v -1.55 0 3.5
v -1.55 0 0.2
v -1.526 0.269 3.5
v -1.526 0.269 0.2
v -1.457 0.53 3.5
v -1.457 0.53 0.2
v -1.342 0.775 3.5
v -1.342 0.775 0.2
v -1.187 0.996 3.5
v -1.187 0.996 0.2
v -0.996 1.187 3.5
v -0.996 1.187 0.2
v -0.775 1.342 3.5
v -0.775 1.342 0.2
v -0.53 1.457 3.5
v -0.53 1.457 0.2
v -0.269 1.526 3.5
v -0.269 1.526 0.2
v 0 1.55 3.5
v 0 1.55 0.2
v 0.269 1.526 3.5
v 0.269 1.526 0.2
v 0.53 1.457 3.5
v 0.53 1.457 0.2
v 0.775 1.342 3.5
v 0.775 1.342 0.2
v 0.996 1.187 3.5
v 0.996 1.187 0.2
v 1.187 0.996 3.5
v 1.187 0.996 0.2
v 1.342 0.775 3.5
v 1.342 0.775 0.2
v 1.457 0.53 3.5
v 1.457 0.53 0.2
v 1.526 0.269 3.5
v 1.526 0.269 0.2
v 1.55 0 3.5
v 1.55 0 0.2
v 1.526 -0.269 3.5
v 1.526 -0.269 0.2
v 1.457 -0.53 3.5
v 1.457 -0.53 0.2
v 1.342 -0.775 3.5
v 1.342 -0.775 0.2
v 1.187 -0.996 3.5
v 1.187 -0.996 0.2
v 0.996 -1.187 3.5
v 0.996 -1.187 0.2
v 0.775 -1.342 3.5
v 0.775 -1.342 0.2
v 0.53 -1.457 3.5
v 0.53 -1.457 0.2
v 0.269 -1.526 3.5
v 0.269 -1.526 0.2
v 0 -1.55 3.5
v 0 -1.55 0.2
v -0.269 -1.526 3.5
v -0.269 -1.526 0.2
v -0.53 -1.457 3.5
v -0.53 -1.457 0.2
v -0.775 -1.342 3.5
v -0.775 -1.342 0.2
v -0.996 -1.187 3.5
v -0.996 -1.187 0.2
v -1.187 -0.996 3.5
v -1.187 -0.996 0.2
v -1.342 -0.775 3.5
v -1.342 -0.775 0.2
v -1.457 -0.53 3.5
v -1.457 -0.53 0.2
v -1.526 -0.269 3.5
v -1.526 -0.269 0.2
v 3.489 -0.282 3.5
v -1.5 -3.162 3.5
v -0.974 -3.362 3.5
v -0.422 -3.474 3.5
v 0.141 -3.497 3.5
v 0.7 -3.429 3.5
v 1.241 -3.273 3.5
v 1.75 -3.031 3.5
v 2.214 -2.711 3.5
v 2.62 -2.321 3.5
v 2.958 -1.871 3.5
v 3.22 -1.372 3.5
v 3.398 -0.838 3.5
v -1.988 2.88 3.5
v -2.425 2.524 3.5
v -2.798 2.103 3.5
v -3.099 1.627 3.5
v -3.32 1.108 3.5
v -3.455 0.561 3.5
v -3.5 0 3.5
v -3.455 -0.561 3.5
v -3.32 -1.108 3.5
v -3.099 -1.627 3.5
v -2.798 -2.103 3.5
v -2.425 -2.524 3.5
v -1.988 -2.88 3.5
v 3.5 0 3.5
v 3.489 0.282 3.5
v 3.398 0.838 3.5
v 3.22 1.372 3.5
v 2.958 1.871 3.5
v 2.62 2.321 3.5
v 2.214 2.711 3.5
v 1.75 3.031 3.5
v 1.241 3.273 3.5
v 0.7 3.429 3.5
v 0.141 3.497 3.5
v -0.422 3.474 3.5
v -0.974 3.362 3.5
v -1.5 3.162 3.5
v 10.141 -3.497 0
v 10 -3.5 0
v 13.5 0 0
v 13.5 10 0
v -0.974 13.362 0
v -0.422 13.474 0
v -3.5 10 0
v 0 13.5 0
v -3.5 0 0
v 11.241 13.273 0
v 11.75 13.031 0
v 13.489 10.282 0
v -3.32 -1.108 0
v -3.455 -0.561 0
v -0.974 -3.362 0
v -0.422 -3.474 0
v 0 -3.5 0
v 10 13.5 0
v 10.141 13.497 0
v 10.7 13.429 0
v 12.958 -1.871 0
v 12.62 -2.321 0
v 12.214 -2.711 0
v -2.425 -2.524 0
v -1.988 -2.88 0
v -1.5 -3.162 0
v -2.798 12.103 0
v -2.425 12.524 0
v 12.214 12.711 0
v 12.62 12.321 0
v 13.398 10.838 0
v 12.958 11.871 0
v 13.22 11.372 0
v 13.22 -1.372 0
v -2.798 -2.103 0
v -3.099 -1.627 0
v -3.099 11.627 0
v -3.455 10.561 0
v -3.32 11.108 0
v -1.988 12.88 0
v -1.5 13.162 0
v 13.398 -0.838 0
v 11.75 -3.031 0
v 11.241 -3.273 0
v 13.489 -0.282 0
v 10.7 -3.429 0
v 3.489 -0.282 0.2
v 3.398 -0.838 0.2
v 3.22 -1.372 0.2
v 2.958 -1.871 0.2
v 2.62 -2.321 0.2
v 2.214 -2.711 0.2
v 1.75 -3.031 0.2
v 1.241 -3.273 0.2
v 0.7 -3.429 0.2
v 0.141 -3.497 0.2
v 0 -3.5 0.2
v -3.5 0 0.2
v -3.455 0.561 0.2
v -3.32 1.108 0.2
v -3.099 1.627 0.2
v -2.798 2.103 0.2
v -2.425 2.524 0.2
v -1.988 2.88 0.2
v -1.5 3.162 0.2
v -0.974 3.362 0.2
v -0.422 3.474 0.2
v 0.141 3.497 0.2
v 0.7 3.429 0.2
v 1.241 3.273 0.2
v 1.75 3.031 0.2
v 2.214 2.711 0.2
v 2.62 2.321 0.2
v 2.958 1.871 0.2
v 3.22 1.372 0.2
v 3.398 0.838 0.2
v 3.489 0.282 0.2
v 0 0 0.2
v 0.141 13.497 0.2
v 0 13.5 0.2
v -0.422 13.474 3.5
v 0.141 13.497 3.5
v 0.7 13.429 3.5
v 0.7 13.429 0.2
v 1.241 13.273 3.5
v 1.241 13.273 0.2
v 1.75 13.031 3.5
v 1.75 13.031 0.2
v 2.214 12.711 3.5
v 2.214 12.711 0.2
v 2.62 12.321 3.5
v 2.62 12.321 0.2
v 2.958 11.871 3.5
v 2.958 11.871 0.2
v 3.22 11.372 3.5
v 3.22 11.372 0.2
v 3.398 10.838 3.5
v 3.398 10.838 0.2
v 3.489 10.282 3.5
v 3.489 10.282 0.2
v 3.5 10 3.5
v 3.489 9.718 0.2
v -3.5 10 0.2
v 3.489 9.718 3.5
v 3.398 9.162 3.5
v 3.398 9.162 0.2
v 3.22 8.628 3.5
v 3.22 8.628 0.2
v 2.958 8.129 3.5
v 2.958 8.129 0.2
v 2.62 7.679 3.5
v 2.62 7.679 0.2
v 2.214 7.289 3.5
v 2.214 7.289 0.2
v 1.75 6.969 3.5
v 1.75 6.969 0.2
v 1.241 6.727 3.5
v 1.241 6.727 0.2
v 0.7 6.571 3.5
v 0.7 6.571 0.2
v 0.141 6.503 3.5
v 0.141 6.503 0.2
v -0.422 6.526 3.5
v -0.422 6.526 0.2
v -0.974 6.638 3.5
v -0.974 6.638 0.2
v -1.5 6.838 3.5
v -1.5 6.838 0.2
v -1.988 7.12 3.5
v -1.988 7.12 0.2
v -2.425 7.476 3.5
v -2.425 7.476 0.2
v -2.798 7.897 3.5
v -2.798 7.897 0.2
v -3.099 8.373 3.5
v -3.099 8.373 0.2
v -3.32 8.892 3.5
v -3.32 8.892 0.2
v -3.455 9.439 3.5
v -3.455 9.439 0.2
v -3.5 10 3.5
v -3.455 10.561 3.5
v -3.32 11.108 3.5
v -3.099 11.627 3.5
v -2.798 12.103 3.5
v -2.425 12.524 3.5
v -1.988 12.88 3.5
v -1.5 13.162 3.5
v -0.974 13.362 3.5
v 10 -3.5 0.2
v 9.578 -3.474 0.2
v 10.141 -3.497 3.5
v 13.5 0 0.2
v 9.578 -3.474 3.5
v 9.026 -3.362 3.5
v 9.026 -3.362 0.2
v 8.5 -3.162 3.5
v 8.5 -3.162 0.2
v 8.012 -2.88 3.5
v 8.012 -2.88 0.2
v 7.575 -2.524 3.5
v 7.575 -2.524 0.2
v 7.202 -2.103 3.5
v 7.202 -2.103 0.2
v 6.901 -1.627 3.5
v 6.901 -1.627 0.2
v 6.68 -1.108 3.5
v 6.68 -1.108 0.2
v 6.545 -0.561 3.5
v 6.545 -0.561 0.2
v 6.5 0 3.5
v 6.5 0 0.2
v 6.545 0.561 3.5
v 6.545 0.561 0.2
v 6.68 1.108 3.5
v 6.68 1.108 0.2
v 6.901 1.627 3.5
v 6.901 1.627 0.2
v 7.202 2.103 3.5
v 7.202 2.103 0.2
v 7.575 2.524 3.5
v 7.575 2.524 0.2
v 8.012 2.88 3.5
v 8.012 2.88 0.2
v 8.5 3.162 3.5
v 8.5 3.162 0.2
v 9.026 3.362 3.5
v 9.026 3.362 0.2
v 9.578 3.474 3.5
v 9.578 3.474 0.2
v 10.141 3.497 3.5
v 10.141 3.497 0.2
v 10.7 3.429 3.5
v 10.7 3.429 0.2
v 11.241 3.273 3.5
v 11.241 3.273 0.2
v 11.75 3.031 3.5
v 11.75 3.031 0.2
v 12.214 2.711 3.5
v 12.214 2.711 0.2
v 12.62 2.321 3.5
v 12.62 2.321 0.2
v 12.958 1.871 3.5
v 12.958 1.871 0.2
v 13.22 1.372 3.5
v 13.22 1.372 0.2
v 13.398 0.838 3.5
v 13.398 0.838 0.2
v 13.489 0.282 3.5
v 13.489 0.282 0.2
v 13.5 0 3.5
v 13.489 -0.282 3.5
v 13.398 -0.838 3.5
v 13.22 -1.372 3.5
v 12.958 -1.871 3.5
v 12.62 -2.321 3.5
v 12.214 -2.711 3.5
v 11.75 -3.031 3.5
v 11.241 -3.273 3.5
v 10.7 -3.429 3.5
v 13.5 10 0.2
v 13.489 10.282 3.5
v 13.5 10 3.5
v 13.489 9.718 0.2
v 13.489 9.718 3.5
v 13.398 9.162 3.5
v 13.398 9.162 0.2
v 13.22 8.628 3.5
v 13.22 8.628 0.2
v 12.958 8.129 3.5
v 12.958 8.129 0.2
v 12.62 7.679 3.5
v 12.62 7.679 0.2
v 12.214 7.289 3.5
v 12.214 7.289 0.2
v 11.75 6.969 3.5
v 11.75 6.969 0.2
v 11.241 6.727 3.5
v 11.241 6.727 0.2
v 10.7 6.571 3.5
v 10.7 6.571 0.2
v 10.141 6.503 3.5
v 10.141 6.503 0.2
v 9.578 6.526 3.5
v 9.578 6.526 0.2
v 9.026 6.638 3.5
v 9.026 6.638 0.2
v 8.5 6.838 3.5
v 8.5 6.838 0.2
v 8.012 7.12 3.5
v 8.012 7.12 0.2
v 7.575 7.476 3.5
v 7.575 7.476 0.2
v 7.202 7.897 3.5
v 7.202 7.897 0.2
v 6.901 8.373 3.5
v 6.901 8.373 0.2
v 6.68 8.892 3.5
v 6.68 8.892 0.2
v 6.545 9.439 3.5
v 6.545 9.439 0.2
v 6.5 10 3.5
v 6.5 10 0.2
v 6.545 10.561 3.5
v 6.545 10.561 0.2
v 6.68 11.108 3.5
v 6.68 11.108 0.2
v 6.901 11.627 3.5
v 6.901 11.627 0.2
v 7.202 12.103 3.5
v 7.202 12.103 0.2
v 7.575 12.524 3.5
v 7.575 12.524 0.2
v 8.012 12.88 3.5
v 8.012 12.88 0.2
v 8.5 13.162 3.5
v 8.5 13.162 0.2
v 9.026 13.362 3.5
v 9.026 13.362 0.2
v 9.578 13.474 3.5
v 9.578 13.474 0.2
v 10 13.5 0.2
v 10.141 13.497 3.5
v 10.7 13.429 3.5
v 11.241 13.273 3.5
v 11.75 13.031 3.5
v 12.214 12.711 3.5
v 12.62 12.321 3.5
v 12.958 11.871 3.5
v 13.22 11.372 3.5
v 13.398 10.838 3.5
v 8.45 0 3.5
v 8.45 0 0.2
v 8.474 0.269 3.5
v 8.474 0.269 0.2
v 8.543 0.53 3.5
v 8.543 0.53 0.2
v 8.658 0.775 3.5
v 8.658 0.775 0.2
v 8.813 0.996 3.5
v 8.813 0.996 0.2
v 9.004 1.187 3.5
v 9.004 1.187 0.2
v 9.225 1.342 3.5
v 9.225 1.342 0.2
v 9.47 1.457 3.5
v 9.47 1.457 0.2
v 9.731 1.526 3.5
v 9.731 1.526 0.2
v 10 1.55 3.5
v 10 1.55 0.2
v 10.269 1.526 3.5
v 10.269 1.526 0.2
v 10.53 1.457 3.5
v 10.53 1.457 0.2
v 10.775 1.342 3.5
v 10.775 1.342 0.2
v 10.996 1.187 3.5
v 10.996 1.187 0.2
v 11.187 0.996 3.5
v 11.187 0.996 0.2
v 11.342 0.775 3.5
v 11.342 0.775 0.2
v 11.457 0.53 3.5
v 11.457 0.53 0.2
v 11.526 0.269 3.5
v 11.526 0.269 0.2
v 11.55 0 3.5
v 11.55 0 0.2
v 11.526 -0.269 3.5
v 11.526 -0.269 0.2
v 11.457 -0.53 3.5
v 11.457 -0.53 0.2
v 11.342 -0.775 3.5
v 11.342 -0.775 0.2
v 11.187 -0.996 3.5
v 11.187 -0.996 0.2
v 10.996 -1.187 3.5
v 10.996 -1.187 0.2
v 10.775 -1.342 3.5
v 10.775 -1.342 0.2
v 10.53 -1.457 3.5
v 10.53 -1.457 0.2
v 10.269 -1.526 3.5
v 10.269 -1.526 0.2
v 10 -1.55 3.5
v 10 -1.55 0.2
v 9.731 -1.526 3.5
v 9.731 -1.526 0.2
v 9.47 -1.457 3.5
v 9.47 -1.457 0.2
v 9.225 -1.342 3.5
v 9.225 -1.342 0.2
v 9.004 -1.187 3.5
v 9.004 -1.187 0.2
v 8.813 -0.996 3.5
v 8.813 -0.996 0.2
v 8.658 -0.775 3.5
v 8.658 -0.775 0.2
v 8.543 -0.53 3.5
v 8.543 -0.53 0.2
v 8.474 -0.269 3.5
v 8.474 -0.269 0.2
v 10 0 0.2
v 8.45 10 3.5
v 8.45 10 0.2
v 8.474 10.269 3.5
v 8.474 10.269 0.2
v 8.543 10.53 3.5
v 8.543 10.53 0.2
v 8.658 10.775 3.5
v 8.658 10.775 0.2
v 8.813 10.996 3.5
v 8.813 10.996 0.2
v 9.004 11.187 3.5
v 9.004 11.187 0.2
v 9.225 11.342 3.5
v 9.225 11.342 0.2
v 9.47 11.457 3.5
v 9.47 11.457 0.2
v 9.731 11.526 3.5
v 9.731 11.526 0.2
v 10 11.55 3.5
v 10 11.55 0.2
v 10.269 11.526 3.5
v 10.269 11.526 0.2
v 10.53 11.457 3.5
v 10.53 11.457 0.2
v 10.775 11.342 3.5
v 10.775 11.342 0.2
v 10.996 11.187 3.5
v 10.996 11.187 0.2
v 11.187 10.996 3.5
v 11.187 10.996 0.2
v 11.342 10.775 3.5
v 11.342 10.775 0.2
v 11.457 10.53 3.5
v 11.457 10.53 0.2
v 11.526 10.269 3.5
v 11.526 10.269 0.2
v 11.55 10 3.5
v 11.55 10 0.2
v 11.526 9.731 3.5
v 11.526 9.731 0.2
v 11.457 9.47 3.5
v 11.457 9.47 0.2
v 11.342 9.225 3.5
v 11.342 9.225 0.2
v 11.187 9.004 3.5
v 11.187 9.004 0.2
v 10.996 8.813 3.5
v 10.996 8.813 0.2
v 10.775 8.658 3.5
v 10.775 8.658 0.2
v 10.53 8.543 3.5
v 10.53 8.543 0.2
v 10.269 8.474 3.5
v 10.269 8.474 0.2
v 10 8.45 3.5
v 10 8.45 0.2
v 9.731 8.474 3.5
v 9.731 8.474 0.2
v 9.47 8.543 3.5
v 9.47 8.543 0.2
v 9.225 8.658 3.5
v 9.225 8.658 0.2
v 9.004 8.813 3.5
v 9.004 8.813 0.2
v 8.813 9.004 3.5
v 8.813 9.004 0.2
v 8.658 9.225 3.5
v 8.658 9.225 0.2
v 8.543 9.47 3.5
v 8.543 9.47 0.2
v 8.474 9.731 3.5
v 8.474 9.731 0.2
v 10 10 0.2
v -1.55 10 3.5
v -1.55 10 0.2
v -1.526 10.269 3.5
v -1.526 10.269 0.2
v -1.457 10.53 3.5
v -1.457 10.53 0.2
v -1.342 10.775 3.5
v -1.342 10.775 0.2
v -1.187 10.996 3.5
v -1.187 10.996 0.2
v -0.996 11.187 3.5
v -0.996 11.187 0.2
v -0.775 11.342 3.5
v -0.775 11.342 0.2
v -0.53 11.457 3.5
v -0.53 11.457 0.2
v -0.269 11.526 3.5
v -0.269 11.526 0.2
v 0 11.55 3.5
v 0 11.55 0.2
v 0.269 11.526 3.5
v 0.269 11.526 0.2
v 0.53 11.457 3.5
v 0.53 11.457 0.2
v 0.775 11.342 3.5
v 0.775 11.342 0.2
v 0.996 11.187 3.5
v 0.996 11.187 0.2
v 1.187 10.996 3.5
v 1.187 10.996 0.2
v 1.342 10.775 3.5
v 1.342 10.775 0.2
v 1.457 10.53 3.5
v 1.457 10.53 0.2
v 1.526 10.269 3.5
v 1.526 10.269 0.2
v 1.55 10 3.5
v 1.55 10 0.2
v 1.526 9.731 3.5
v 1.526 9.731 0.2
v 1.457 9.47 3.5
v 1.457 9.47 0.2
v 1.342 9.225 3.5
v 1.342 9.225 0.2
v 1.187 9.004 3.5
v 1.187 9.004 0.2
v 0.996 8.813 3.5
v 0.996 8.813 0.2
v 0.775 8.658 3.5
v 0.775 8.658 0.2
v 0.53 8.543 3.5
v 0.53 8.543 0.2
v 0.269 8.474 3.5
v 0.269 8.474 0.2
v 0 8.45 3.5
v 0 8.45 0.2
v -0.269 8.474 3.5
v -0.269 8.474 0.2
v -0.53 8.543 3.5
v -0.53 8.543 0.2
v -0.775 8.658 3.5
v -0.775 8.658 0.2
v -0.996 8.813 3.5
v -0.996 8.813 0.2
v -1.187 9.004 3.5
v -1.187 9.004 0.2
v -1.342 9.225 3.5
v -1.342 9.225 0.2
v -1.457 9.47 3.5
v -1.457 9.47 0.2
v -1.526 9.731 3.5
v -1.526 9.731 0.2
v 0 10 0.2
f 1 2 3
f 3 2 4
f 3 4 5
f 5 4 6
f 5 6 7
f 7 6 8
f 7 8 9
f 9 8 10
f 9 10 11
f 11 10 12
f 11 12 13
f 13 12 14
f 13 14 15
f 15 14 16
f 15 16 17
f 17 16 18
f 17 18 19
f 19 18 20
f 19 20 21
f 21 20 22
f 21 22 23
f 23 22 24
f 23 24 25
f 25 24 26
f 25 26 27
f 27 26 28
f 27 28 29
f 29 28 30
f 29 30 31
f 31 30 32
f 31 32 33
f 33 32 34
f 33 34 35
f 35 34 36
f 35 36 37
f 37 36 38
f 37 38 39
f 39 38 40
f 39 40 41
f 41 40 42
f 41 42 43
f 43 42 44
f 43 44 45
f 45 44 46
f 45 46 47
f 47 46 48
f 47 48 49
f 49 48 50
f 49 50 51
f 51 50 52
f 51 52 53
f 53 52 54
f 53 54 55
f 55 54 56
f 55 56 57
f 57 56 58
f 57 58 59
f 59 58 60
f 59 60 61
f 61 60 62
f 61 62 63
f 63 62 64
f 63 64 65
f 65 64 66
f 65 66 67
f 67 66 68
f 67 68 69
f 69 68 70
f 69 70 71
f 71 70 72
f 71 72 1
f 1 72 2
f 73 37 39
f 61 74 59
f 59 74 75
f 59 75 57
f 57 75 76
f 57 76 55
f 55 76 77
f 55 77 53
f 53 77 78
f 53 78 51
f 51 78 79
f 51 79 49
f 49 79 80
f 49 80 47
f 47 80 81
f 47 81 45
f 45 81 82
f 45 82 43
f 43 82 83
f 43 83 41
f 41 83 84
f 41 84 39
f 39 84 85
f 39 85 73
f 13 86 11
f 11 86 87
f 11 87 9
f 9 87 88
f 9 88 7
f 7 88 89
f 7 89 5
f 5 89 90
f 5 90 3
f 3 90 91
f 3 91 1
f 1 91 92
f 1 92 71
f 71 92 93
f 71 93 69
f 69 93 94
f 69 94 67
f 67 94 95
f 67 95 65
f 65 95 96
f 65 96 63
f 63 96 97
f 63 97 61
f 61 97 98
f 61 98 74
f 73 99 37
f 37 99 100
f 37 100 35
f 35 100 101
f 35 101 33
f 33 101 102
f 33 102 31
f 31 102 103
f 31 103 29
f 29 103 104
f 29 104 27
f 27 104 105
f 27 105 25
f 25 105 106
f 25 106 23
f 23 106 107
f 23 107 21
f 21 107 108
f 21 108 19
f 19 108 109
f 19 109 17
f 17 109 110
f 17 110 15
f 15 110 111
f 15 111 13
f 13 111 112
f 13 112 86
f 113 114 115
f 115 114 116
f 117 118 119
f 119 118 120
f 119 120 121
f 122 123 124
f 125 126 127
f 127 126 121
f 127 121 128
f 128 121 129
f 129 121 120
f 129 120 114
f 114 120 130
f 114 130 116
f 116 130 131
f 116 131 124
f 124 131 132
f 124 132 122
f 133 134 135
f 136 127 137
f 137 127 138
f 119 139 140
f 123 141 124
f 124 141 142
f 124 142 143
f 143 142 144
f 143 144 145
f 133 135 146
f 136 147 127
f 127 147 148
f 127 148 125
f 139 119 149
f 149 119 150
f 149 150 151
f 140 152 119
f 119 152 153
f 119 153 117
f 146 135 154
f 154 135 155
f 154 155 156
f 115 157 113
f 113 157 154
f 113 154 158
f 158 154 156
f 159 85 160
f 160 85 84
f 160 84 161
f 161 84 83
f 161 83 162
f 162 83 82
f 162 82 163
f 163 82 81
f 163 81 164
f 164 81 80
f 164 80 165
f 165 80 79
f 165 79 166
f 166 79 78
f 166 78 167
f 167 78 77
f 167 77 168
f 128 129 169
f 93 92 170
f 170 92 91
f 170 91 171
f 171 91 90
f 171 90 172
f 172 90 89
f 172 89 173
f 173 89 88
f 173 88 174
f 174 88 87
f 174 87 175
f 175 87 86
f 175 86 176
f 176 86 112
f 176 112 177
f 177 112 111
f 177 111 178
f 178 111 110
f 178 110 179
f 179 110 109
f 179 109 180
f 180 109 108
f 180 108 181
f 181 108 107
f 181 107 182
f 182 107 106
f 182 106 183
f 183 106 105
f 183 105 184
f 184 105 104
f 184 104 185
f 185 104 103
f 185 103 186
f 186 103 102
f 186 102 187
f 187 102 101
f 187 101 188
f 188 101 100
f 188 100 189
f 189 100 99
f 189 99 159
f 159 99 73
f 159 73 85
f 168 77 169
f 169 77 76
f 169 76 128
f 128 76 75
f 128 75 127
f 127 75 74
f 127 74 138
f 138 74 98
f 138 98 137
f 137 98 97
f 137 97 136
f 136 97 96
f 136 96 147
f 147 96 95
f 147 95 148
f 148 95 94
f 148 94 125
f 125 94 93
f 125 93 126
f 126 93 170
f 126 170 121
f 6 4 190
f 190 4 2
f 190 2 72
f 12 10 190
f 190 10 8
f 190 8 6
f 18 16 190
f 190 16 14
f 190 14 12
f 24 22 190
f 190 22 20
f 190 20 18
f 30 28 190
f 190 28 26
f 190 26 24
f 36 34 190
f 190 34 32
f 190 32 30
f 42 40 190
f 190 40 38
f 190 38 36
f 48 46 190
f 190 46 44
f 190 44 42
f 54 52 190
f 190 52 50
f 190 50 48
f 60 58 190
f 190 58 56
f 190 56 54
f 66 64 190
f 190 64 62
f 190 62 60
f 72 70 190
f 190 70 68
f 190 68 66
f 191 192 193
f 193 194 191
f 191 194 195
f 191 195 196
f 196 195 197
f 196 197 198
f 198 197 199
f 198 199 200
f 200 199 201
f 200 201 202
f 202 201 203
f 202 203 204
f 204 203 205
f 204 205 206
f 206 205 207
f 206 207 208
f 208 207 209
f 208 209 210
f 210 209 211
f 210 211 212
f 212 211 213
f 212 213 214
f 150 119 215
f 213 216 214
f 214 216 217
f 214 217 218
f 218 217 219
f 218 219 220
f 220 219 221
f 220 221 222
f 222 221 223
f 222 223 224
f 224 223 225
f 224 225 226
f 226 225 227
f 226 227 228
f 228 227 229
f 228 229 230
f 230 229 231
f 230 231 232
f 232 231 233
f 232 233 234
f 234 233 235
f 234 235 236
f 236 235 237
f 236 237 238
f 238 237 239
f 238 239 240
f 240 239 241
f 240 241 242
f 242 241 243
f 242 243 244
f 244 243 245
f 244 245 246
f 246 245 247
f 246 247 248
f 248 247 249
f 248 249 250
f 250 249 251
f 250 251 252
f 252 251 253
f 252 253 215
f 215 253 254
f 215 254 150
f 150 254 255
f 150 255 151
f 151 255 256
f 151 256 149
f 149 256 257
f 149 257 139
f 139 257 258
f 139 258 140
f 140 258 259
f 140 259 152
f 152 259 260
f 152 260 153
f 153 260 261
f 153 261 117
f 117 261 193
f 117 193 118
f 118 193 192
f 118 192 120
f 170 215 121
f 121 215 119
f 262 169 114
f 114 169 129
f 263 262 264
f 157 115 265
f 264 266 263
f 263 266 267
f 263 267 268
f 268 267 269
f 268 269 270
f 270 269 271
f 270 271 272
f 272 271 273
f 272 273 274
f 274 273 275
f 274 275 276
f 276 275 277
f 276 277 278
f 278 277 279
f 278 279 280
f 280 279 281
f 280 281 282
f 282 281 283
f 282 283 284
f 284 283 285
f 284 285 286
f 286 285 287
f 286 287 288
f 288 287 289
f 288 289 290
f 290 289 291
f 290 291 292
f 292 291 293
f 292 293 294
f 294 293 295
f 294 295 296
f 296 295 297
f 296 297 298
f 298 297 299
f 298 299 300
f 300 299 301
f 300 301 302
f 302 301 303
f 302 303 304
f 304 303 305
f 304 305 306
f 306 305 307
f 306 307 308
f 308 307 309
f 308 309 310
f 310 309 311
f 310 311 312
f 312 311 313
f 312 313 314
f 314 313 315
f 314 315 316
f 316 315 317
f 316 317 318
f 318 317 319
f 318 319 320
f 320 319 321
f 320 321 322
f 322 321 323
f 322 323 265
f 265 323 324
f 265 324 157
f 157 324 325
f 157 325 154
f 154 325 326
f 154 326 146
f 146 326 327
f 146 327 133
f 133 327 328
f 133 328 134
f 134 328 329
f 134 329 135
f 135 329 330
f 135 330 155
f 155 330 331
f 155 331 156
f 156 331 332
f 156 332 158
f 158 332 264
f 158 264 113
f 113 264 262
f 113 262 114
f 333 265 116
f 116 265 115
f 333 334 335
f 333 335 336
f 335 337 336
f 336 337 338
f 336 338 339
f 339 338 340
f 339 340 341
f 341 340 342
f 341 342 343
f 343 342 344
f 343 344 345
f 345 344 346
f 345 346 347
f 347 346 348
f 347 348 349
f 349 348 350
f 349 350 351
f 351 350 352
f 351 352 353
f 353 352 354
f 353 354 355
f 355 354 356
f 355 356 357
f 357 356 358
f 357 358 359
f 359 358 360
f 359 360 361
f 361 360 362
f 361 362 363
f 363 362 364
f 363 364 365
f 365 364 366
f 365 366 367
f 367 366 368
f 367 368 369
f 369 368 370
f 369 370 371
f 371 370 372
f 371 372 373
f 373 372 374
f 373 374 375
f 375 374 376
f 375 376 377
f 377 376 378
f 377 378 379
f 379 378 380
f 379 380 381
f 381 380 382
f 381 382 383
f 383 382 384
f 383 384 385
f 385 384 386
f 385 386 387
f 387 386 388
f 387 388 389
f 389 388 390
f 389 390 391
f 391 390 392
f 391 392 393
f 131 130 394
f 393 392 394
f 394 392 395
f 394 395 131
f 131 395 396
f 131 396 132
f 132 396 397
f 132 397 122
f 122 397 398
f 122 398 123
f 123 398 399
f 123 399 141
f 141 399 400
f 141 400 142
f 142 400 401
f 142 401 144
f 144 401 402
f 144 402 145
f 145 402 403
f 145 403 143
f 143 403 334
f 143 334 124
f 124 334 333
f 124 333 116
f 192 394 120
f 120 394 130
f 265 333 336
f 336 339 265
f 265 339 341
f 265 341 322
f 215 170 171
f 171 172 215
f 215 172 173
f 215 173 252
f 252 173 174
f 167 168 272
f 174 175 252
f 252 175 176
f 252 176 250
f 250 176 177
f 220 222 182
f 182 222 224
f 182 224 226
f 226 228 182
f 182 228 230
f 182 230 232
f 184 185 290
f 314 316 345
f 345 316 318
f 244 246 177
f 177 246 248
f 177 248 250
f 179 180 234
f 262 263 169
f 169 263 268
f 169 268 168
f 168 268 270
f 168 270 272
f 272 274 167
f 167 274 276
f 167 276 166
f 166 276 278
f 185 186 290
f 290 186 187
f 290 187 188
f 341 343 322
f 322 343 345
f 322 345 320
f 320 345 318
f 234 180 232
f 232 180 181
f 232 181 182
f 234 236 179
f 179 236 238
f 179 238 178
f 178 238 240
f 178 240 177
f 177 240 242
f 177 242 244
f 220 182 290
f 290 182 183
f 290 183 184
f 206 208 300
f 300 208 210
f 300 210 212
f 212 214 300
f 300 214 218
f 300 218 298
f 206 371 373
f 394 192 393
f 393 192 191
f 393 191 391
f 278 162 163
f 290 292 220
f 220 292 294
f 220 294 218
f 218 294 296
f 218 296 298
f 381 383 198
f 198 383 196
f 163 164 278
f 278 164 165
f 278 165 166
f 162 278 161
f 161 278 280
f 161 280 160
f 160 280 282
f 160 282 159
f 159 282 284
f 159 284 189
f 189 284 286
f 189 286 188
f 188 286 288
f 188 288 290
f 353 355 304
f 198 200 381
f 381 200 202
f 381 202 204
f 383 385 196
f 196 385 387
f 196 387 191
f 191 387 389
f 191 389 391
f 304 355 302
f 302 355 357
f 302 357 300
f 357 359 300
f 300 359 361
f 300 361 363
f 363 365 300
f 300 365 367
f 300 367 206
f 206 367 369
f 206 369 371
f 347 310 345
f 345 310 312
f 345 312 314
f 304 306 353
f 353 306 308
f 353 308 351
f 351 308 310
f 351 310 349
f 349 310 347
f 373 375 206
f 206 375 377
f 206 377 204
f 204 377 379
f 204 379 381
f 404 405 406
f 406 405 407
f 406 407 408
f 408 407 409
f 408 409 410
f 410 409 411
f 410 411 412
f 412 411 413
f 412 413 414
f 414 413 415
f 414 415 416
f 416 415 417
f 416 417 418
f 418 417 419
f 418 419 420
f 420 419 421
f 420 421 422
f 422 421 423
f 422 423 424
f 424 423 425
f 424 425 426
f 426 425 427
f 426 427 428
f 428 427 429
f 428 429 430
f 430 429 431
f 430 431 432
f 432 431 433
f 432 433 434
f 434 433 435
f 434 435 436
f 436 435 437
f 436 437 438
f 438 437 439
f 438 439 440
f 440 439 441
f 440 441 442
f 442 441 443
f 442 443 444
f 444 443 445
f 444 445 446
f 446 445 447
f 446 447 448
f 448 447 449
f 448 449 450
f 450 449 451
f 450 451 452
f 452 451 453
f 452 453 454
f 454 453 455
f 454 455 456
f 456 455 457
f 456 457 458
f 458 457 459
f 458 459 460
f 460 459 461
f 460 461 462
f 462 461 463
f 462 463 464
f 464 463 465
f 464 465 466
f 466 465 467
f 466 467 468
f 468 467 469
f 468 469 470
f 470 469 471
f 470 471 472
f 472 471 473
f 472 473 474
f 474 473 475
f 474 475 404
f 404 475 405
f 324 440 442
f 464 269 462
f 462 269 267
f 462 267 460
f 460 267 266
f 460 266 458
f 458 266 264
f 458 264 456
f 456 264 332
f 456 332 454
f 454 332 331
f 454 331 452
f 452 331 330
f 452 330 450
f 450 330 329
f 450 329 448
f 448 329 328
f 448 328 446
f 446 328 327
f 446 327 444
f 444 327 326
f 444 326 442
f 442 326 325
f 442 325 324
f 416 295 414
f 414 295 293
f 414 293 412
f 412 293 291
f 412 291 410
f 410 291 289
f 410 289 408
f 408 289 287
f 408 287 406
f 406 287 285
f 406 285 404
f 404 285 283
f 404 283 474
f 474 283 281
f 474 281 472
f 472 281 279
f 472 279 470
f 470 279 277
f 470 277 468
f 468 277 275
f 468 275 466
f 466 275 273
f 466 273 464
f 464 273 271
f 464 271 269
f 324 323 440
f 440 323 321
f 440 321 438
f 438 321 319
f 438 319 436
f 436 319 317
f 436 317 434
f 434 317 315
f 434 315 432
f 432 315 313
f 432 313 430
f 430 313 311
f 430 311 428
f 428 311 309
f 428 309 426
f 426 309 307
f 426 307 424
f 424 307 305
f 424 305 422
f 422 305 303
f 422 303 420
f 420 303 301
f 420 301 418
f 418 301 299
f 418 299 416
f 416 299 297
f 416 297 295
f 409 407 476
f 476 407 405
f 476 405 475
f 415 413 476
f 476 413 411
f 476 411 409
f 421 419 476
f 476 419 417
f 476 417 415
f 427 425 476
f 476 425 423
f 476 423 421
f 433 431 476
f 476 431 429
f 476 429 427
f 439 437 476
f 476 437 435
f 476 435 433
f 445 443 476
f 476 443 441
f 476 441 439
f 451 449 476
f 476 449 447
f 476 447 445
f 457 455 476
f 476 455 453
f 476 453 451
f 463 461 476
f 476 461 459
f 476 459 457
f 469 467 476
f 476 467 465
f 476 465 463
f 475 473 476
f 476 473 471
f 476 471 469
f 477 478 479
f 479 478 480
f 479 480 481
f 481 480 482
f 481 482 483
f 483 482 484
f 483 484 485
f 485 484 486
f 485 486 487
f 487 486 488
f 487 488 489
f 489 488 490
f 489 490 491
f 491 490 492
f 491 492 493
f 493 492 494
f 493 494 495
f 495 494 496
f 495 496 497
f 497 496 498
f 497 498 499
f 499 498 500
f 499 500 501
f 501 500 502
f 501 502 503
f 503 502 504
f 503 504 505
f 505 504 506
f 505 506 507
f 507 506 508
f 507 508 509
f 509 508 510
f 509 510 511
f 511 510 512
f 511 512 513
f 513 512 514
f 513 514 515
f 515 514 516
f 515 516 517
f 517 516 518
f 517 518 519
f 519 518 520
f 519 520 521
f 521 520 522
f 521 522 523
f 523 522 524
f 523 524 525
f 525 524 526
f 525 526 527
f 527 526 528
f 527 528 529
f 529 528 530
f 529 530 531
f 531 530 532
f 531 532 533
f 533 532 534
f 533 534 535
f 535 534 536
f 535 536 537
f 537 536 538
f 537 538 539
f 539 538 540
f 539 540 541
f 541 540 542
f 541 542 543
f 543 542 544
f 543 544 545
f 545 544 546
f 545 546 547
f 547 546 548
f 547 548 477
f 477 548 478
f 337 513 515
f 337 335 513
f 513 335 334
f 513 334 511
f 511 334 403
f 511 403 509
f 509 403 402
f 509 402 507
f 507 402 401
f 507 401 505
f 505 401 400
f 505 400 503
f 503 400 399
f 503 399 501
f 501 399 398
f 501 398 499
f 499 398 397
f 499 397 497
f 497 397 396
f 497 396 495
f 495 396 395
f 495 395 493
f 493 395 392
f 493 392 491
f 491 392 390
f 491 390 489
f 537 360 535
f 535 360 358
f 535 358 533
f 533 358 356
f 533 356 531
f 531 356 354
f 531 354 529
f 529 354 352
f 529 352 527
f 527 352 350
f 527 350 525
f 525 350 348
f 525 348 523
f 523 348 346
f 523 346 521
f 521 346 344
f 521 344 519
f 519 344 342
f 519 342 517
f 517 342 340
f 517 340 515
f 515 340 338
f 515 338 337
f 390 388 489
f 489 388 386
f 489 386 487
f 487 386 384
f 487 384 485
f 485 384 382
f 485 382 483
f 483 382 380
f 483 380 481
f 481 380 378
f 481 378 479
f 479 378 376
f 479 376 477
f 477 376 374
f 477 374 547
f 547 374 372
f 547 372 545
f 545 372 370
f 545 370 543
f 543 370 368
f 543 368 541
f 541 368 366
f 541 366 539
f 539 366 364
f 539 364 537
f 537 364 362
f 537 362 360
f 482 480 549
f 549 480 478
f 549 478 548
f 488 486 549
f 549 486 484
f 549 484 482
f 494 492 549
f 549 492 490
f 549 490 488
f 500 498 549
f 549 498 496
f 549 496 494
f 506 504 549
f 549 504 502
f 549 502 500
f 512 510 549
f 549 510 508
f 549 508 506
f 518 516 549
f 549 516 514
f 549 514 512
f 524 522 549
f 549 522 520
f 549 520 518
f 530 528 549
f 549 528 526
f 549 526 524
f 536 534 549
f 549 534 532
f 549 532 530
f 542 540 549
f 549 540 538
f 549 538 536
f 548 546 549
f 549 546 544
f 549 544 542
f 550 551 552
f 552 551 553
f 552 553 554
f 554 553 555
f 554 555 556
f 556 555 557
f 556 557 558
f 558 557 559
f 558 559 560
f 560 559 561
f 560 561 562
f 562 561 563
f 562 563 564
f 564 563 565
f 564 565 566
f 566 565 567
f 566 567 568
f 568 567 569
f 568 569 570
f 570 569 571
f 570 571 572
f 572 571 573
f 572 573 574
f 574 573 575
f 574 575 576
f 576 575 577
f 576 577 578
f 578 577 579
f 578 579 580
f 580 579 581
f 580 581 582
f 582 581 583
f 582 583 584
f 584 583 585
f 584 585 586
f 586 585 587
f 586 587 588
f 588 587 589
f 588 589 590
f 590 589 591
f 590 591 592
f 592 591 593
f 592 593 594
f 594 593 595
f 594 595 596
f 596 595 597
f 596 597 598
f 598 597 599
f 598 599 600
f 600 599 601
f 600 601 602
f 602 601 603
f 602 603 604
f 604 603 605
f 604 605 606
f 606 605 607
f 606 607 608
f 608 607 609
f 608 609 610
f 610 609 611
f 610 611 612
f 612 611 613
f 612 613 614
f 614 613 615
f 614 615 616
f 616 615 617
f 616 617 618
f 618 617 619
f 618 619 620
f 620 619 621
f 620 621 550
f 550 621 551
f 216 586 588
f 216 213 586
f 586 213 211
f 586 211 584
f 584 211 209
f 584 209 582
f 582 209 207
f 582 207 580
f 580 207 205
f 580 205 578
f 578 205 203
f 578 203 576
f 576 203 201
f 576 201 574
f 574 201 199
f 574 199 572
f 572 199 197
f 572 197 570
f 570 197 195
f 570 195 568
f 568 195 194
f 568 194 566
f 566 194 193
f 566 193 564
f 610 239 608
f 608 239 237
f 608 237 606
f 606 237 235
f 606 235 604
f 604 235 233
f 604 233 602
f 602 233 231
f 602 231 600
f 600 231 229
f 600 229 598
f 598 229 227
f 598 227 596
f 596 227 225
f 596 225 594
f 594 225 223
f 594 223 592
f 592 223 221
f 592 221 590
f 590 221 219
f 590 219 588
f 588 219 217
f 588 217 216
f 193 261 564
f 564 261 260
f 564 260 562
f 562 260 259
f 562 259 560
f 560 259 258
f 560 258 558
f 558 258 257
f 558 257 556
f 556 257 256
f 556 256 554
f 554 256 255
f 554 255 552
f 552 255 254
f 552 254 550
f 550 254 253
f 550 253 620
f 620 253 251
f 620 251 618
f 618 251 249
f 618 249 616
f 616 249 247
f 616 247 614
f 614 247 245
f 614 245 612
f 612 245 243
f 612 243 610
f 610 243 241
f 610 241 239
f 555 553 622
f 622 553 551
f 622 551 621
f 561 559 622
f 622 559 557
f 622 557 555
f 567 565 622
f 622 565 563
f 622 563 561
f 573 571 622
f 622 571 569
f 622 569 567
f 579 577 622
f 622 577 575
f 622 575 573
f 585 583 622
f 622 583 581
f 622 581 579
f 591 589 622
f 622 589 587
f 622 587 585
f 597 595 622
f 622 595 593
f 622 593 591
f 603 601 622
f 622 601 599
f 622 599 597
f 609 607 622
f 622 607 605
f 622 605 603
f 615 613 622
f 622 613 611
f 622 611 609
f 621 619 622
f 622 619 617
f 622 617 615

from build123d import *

# Parameters (mm, degrees)
SKETCH1_R             = 3.5
SKETCH1_R_2           = 1.55
BOSS_EXTRUDE1_DEPTH   = 3.5
BOSS_EXTRUDE1_2_DEPTH = 3.5
BOSS_EXTRUDE1_3_DEPTH = 3.5
BOSS_EXTRUDE1_4_DEPTH = 3.5
BOSS_EXTRUDE2_DEPTH   = 0.2


with BuildPart() as part:
    # Sketch1 → Boss-Extrude1 (new body)
    with BuildSketch(Plane.XY):
        Circle(SKETCH1_R)
        Circle(SKETCH1_R_2, mode=Mode.SUBTRACT)
    extrude(amount=BOSS_EXTRUDE1_DEPTH)



with BuildPart() as body_2:
    # Sketch1 → Boss-Extrude1 2 (new body)
    with BuildSketch(Plane.XY):
        with Locations((10, 0)):
            Circle(SKETCH1_R)
        with Locations((10, 0)):
            Circle(SKETCH1_R_2, mode=Mode.SUBTRACT)
    extrude(amount=BOSS_EXTRUDE1_2_DEPTH)


with BuildPart() as body_3:
    # Sketch1 → Boss-Extrude1 3 (new body)
    with BuildSketch(Plane.XY):
        with Locations((10, 10)):
            Circle(SKETCH1_R)
        with Locations((10, 10)):
            Circle(SKETCH1_R_2, mode=Mode.SUBTRACT)
    extrude(amount=BOSS_EXTRUDE1_3_DEPTH)


with BuildPart() as body_4:
    # Sketch1 → Boss-Extrude1 4 (new body)
    with BuildSketch(Plane.XY):
        with Locations((0, 10)):
            Circle(SKETCH1_R)
        with Locations((0, 10)):
            Circle(SKETCH1_R_2, mode=Mode.SUBTRACT)
    extrude(amount=BOSS_EXTRUDE1_4_DEPTH)


with BuildPart() as part_1:
    add(part.part)

    add(body_2.part)  # Boss-Extrude2 merges body 2

    add(body_3.part)  # Boss-Extrude2 merges body 3

    add(body_4.part)  # Boss-Extrude2 merges body 4
    # Sketch2 → Boss-Extrude2 (add)
    with BuildSketch(Plane.XY):
        with BuildLine():
            Line((-3.5, 10), (-3.5, 0))
            ThreePointArc((-3.5, 0), (-2.474873734, -2.474873734), (0, -3.5))
            Line((0, -3.5), (10, -3.5))
            ThreePointArc((10, -3.5), (12.474873734, -2.474873734), (13.5, 0))
            Line((13.5, 0), (13.5, 10))
            ThreePointArc((13.5, 10), (12.474873734, 12.474873734), (10, 13.5))
            Line((10, 13.5), (0, 13.5))
            ThreePointArc((0, 13.5), (-2.474873734, 12.474873734), (-3.5, 10))
        make_face()
    extrude(amount=BOSS_EXTRUDE2_DEPTH)


solid = part_1.part
